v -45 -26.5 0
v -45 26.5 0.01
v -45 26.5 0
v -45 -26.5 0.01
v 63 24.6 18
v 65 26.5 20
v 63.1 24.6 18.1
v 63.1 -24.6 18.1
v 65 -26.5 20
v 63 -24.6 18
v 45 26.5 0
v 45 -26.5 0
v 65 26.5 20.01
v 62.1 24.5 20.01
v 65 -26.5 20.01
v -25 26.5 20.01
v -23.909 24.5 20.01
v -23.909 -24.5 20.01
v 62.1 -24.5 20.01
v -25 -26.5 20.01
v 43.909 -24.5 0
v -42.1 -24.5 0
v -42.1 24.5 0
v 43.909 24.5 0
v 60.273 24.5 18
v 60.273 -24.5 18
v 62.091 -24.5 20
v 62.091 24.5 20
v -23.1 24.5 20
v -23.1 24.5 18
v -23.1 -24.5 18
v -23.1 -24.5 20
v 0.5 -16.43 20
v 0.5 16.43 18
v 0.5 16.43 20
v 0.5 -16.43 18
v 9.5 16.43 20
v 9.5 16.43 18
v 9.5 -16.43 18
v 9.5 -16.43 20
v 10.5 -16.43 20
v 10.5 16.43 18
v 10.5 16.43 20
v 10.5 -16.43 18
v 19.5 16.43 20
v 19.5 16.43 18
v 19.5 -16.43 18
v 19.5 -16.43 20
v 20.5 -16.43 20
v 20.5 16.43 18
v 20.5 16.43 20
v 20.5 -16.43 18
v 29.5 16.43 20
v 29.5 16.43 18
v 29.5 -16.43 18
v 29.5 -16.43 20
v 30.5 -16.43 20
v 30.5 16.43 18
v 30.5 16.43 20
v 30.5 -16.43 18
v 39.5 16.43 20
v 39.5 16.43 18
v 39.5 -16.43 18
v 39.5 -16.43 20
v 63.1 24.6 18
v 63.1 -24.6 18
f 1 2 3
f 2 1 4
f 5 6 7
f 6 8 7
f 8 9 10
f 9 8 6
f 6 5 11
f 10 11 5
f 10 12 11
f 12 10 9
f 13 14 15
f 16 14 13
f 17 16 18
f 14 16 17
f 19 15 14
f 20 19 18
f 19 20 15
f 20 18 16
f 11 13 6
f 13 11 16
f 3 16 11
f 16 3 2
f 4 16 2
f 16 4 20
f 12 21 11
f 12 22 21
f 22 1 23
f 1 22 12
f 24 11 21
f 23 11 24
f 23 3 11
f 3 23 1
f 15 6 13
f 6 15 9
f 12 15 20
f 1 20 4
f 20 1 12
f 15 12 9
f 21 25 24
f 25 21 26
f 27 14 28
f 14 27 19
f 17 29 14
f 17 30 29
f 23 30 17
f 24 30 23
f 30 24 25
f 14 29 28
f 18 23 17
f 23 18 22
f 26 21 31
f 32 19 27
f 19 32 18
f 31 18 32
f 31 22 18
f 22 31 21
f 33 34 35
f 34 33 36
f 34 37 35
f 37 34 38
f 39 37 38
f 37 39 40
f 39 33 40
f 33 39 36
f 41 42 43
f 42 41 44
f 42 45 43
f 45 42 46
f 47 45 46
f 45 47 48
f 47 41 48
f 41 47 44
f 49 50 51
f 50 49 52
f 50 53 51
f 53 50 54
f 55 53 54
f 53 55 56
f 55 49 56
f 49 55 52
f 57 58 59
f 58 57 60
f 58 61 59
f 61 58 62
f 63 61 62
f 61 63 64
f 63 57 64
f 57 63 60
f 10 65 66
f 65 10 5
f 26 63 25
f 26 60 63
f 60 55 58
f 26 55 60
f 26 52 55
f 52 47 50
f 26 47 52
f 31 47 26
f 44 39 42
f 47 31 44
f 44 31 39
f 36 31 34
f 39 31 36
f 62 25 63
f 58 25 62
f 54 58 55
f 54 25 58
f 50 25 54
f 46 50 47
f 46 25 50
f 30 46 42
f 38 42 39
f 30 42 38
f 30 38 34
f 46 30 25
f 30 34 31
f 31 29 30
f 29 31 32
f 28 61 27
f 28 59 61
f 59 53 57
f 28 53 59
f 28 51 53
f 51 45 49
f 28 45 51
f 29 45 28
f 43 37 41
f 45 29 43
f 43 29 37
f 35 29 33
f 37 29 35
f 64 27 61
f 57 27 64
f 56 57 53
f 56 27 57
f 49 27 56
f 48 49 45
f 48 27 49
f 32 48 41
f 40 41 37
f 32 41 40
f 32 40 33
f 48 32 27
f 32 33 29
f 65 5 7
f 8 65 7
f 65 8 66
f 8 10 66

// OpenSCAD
// ============================================================================
// i30 N demister-grille cover  —  parametric base v2
// Clean KOSODÉLNÍK (parallelogram) duct + 4-slot grille. No gauge pod (add later).
// All dims in mm. Measured: face 90x53, ~20mm tall, ~45deg lean, 4 slots, 1mm slats.
// ============================================================================

// ---- duct (parallelogram / kosodélník) ----
W     = 90;   // face width  (X)
D     = 53;   // depth       (Y)
H     = 20;   // height      (Z)
LEAN  = 20;   // horizontal offset top vs bottom (=H -> 45deg lean, along X)
WALL  = 2;    // shell wall thickness

// ---- grille ----
N_SLOT   = 4;
PITCH    = 10;              // slot centre-to-centre
SLAT     = 1;              // bar between slots
SLOT_W   = PITCH - SLAT;    // 9mm opening
SLOT_LEN = D * 0.62;       // slot length along depth

$fn = 48;

// sharp rectangular footprint (gives clean parallelogram sides)
module foot(w, d) square([w, d], center = true);

// leaning parallelepiped between a bottom footprint and a top footprint offset by LEAN
module box(w, d, lean, h) {
  hull() {
    linear_extrude(0.01) foot(w, d);
    translate([lean, 0, h]) linear_extrude(0.01) foot(w, d);
  }
}

// hollow shell, open top & bottom
module shell() {
  difference() {
    box(W, D, LEAN, H);
    hull() {
      translate([0, 0, -1])      linear_extrude(0.01) foot(W-2*WALL, D-2*WALL);
      translate([LEAN, 0, H+1])  linear_extrude(0.01) foot(W-2*WALL, D-2*WALL);
    }
  }
}

// grille cap over the top opening, with N_SLOT slots cut through
module grille() {
  span = (N_SLOT-1) * PITCH;
  difference() {
    translate([LEAN, 0, H-WALL]) linear_extrude(WALL) foot(W-2*WALL+0.2, D-2*WALL+0.2);
    for (i = [0:N_SLOT-1])
      translate([LEAN - span/2 + i*PITCH, 0, H-WALL-0.1])
        linear_extrude(WALL+0.2) square([SLOT_W, SLOT_LEN], center = true);
  }
}

union() {
  shell();
  grille();
}
